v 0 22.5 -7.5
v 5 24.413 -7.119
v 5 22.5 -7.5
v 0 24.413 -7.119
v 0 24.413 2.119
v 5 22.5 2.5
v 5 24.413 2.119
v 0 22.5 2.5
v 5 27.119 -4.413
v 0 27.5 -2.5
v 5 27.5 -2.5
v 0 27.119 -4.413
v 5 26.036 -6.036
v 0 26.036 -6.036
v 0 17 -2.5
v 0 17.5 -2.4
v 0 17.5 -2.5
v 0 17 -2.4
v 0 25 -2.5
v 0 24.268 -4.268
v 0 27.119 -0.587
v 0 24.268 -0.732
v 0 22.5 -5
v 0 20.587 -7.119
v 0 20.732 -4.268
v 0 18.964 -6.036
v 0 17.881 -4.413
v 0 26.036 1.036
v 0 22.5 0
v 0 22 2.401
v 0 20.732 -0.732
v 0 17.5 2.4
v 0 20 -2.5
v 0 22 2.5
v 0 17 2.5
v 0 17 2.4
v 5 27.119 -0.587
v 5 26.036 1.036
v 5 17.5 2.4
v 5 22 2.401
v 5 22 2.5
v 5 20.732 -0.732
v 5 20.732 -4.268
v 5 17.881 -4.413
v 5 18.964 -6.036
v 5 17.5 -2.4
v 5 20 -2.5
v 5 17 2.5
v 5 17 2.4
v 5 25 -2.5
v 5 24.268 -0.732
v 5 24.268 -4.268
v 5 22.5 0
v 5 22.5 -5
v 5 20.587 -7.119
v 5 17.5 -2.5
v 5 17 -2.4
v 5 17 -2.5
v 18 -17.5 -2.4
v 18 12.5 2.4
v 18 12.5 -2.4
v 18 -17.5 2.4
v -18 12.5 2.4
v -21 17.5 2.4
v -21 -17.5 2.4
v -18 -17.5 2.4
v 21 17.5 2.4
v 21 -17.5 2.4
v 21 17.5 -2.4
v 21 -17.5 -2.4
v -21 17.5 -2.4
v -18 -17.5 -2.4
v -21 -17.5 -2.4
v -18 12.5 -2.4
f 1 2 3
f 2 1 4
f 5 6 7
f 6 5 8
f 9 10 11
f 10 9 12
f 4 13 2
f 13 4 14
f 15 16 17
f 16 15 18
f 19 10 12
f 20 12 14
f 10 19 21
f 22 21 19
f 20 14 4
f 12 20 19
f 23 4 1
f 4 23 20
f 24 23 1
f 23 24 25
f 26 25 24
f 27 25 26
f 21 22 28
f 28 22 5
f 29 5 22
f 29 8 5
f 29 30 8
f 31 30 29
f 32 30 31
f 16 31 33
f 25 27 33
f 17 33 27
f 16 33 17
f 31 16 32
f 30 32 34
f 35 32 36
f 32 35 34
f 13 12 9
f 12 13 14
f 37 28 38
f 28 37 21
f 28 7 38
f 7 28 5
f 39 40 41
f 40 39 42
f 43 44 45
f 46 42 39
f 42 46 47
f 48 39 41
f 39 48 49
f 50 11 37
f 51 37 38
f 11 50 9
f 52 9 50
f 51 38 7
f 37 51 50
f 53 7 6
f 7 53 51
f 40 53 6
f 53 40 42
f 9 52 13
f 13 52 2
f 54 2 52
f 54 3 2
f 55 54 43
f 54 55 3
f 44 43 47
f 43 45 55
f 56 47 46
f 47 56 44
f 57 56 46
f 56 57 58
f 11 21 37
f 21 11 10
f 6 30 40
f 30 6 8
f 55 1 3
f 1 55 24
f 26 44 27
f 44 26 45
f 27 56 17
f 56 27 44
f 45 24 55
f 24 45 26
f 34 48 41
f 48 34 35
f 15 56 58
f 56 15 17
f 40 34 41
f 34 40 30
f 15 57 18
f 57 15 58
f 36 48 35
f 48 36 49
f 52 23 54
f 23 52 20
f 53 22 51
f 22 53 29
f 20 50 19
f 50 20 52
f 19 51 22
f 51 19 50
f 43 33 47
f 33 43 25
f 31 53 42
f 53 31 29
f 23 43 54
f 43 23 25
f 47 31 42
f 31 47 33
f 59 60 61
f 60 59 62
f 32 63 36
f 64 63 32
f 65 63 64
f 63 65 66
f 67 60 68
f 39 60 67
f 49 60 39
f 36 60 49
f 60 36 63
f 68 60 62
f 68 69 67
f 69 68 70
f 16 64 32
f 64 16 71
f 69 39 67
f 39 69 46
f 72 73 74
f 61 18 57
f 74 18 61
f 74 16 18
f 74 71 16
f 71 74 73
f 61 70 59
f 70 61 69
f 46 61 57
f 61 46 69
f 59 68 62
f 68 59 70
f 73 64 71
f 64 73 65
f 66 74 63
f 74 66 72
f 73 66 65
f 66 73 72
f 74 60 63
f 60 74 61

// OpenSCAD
light_width1 = 35;
light_width2 = 40;
light_height = 5;
connector_length = 35;


translate ([light_width1/2 + 2 ,0,0])
    cube([3,connector_length,light_height - 0.2], center = true);
    
translate ([-(light_width1/2 + 2) ,0,0])
    cube([3,connector_length,light_height - 0.2], center = true);

translate ([0,connector_length/2 - 2.5,0])
    cube([light_width1+4, 5, light_height - 0.2],center = true);
    
translate([0,connector_length/2 + 5,-2.5]){
    rotate([0,90,0]) {
        difference(){
            union(){
                cylinder(5,5,5);
                translate([-5,-5.5,0]){
                    cube([5,5,light_height]);
                }
            }
            cylinder(5,2.5,2.5);
            
        }
    }
}
     
//translate([0,connector_length/2 - 2,-2.5]){
//    cube([5,5,light_height]);
//}
